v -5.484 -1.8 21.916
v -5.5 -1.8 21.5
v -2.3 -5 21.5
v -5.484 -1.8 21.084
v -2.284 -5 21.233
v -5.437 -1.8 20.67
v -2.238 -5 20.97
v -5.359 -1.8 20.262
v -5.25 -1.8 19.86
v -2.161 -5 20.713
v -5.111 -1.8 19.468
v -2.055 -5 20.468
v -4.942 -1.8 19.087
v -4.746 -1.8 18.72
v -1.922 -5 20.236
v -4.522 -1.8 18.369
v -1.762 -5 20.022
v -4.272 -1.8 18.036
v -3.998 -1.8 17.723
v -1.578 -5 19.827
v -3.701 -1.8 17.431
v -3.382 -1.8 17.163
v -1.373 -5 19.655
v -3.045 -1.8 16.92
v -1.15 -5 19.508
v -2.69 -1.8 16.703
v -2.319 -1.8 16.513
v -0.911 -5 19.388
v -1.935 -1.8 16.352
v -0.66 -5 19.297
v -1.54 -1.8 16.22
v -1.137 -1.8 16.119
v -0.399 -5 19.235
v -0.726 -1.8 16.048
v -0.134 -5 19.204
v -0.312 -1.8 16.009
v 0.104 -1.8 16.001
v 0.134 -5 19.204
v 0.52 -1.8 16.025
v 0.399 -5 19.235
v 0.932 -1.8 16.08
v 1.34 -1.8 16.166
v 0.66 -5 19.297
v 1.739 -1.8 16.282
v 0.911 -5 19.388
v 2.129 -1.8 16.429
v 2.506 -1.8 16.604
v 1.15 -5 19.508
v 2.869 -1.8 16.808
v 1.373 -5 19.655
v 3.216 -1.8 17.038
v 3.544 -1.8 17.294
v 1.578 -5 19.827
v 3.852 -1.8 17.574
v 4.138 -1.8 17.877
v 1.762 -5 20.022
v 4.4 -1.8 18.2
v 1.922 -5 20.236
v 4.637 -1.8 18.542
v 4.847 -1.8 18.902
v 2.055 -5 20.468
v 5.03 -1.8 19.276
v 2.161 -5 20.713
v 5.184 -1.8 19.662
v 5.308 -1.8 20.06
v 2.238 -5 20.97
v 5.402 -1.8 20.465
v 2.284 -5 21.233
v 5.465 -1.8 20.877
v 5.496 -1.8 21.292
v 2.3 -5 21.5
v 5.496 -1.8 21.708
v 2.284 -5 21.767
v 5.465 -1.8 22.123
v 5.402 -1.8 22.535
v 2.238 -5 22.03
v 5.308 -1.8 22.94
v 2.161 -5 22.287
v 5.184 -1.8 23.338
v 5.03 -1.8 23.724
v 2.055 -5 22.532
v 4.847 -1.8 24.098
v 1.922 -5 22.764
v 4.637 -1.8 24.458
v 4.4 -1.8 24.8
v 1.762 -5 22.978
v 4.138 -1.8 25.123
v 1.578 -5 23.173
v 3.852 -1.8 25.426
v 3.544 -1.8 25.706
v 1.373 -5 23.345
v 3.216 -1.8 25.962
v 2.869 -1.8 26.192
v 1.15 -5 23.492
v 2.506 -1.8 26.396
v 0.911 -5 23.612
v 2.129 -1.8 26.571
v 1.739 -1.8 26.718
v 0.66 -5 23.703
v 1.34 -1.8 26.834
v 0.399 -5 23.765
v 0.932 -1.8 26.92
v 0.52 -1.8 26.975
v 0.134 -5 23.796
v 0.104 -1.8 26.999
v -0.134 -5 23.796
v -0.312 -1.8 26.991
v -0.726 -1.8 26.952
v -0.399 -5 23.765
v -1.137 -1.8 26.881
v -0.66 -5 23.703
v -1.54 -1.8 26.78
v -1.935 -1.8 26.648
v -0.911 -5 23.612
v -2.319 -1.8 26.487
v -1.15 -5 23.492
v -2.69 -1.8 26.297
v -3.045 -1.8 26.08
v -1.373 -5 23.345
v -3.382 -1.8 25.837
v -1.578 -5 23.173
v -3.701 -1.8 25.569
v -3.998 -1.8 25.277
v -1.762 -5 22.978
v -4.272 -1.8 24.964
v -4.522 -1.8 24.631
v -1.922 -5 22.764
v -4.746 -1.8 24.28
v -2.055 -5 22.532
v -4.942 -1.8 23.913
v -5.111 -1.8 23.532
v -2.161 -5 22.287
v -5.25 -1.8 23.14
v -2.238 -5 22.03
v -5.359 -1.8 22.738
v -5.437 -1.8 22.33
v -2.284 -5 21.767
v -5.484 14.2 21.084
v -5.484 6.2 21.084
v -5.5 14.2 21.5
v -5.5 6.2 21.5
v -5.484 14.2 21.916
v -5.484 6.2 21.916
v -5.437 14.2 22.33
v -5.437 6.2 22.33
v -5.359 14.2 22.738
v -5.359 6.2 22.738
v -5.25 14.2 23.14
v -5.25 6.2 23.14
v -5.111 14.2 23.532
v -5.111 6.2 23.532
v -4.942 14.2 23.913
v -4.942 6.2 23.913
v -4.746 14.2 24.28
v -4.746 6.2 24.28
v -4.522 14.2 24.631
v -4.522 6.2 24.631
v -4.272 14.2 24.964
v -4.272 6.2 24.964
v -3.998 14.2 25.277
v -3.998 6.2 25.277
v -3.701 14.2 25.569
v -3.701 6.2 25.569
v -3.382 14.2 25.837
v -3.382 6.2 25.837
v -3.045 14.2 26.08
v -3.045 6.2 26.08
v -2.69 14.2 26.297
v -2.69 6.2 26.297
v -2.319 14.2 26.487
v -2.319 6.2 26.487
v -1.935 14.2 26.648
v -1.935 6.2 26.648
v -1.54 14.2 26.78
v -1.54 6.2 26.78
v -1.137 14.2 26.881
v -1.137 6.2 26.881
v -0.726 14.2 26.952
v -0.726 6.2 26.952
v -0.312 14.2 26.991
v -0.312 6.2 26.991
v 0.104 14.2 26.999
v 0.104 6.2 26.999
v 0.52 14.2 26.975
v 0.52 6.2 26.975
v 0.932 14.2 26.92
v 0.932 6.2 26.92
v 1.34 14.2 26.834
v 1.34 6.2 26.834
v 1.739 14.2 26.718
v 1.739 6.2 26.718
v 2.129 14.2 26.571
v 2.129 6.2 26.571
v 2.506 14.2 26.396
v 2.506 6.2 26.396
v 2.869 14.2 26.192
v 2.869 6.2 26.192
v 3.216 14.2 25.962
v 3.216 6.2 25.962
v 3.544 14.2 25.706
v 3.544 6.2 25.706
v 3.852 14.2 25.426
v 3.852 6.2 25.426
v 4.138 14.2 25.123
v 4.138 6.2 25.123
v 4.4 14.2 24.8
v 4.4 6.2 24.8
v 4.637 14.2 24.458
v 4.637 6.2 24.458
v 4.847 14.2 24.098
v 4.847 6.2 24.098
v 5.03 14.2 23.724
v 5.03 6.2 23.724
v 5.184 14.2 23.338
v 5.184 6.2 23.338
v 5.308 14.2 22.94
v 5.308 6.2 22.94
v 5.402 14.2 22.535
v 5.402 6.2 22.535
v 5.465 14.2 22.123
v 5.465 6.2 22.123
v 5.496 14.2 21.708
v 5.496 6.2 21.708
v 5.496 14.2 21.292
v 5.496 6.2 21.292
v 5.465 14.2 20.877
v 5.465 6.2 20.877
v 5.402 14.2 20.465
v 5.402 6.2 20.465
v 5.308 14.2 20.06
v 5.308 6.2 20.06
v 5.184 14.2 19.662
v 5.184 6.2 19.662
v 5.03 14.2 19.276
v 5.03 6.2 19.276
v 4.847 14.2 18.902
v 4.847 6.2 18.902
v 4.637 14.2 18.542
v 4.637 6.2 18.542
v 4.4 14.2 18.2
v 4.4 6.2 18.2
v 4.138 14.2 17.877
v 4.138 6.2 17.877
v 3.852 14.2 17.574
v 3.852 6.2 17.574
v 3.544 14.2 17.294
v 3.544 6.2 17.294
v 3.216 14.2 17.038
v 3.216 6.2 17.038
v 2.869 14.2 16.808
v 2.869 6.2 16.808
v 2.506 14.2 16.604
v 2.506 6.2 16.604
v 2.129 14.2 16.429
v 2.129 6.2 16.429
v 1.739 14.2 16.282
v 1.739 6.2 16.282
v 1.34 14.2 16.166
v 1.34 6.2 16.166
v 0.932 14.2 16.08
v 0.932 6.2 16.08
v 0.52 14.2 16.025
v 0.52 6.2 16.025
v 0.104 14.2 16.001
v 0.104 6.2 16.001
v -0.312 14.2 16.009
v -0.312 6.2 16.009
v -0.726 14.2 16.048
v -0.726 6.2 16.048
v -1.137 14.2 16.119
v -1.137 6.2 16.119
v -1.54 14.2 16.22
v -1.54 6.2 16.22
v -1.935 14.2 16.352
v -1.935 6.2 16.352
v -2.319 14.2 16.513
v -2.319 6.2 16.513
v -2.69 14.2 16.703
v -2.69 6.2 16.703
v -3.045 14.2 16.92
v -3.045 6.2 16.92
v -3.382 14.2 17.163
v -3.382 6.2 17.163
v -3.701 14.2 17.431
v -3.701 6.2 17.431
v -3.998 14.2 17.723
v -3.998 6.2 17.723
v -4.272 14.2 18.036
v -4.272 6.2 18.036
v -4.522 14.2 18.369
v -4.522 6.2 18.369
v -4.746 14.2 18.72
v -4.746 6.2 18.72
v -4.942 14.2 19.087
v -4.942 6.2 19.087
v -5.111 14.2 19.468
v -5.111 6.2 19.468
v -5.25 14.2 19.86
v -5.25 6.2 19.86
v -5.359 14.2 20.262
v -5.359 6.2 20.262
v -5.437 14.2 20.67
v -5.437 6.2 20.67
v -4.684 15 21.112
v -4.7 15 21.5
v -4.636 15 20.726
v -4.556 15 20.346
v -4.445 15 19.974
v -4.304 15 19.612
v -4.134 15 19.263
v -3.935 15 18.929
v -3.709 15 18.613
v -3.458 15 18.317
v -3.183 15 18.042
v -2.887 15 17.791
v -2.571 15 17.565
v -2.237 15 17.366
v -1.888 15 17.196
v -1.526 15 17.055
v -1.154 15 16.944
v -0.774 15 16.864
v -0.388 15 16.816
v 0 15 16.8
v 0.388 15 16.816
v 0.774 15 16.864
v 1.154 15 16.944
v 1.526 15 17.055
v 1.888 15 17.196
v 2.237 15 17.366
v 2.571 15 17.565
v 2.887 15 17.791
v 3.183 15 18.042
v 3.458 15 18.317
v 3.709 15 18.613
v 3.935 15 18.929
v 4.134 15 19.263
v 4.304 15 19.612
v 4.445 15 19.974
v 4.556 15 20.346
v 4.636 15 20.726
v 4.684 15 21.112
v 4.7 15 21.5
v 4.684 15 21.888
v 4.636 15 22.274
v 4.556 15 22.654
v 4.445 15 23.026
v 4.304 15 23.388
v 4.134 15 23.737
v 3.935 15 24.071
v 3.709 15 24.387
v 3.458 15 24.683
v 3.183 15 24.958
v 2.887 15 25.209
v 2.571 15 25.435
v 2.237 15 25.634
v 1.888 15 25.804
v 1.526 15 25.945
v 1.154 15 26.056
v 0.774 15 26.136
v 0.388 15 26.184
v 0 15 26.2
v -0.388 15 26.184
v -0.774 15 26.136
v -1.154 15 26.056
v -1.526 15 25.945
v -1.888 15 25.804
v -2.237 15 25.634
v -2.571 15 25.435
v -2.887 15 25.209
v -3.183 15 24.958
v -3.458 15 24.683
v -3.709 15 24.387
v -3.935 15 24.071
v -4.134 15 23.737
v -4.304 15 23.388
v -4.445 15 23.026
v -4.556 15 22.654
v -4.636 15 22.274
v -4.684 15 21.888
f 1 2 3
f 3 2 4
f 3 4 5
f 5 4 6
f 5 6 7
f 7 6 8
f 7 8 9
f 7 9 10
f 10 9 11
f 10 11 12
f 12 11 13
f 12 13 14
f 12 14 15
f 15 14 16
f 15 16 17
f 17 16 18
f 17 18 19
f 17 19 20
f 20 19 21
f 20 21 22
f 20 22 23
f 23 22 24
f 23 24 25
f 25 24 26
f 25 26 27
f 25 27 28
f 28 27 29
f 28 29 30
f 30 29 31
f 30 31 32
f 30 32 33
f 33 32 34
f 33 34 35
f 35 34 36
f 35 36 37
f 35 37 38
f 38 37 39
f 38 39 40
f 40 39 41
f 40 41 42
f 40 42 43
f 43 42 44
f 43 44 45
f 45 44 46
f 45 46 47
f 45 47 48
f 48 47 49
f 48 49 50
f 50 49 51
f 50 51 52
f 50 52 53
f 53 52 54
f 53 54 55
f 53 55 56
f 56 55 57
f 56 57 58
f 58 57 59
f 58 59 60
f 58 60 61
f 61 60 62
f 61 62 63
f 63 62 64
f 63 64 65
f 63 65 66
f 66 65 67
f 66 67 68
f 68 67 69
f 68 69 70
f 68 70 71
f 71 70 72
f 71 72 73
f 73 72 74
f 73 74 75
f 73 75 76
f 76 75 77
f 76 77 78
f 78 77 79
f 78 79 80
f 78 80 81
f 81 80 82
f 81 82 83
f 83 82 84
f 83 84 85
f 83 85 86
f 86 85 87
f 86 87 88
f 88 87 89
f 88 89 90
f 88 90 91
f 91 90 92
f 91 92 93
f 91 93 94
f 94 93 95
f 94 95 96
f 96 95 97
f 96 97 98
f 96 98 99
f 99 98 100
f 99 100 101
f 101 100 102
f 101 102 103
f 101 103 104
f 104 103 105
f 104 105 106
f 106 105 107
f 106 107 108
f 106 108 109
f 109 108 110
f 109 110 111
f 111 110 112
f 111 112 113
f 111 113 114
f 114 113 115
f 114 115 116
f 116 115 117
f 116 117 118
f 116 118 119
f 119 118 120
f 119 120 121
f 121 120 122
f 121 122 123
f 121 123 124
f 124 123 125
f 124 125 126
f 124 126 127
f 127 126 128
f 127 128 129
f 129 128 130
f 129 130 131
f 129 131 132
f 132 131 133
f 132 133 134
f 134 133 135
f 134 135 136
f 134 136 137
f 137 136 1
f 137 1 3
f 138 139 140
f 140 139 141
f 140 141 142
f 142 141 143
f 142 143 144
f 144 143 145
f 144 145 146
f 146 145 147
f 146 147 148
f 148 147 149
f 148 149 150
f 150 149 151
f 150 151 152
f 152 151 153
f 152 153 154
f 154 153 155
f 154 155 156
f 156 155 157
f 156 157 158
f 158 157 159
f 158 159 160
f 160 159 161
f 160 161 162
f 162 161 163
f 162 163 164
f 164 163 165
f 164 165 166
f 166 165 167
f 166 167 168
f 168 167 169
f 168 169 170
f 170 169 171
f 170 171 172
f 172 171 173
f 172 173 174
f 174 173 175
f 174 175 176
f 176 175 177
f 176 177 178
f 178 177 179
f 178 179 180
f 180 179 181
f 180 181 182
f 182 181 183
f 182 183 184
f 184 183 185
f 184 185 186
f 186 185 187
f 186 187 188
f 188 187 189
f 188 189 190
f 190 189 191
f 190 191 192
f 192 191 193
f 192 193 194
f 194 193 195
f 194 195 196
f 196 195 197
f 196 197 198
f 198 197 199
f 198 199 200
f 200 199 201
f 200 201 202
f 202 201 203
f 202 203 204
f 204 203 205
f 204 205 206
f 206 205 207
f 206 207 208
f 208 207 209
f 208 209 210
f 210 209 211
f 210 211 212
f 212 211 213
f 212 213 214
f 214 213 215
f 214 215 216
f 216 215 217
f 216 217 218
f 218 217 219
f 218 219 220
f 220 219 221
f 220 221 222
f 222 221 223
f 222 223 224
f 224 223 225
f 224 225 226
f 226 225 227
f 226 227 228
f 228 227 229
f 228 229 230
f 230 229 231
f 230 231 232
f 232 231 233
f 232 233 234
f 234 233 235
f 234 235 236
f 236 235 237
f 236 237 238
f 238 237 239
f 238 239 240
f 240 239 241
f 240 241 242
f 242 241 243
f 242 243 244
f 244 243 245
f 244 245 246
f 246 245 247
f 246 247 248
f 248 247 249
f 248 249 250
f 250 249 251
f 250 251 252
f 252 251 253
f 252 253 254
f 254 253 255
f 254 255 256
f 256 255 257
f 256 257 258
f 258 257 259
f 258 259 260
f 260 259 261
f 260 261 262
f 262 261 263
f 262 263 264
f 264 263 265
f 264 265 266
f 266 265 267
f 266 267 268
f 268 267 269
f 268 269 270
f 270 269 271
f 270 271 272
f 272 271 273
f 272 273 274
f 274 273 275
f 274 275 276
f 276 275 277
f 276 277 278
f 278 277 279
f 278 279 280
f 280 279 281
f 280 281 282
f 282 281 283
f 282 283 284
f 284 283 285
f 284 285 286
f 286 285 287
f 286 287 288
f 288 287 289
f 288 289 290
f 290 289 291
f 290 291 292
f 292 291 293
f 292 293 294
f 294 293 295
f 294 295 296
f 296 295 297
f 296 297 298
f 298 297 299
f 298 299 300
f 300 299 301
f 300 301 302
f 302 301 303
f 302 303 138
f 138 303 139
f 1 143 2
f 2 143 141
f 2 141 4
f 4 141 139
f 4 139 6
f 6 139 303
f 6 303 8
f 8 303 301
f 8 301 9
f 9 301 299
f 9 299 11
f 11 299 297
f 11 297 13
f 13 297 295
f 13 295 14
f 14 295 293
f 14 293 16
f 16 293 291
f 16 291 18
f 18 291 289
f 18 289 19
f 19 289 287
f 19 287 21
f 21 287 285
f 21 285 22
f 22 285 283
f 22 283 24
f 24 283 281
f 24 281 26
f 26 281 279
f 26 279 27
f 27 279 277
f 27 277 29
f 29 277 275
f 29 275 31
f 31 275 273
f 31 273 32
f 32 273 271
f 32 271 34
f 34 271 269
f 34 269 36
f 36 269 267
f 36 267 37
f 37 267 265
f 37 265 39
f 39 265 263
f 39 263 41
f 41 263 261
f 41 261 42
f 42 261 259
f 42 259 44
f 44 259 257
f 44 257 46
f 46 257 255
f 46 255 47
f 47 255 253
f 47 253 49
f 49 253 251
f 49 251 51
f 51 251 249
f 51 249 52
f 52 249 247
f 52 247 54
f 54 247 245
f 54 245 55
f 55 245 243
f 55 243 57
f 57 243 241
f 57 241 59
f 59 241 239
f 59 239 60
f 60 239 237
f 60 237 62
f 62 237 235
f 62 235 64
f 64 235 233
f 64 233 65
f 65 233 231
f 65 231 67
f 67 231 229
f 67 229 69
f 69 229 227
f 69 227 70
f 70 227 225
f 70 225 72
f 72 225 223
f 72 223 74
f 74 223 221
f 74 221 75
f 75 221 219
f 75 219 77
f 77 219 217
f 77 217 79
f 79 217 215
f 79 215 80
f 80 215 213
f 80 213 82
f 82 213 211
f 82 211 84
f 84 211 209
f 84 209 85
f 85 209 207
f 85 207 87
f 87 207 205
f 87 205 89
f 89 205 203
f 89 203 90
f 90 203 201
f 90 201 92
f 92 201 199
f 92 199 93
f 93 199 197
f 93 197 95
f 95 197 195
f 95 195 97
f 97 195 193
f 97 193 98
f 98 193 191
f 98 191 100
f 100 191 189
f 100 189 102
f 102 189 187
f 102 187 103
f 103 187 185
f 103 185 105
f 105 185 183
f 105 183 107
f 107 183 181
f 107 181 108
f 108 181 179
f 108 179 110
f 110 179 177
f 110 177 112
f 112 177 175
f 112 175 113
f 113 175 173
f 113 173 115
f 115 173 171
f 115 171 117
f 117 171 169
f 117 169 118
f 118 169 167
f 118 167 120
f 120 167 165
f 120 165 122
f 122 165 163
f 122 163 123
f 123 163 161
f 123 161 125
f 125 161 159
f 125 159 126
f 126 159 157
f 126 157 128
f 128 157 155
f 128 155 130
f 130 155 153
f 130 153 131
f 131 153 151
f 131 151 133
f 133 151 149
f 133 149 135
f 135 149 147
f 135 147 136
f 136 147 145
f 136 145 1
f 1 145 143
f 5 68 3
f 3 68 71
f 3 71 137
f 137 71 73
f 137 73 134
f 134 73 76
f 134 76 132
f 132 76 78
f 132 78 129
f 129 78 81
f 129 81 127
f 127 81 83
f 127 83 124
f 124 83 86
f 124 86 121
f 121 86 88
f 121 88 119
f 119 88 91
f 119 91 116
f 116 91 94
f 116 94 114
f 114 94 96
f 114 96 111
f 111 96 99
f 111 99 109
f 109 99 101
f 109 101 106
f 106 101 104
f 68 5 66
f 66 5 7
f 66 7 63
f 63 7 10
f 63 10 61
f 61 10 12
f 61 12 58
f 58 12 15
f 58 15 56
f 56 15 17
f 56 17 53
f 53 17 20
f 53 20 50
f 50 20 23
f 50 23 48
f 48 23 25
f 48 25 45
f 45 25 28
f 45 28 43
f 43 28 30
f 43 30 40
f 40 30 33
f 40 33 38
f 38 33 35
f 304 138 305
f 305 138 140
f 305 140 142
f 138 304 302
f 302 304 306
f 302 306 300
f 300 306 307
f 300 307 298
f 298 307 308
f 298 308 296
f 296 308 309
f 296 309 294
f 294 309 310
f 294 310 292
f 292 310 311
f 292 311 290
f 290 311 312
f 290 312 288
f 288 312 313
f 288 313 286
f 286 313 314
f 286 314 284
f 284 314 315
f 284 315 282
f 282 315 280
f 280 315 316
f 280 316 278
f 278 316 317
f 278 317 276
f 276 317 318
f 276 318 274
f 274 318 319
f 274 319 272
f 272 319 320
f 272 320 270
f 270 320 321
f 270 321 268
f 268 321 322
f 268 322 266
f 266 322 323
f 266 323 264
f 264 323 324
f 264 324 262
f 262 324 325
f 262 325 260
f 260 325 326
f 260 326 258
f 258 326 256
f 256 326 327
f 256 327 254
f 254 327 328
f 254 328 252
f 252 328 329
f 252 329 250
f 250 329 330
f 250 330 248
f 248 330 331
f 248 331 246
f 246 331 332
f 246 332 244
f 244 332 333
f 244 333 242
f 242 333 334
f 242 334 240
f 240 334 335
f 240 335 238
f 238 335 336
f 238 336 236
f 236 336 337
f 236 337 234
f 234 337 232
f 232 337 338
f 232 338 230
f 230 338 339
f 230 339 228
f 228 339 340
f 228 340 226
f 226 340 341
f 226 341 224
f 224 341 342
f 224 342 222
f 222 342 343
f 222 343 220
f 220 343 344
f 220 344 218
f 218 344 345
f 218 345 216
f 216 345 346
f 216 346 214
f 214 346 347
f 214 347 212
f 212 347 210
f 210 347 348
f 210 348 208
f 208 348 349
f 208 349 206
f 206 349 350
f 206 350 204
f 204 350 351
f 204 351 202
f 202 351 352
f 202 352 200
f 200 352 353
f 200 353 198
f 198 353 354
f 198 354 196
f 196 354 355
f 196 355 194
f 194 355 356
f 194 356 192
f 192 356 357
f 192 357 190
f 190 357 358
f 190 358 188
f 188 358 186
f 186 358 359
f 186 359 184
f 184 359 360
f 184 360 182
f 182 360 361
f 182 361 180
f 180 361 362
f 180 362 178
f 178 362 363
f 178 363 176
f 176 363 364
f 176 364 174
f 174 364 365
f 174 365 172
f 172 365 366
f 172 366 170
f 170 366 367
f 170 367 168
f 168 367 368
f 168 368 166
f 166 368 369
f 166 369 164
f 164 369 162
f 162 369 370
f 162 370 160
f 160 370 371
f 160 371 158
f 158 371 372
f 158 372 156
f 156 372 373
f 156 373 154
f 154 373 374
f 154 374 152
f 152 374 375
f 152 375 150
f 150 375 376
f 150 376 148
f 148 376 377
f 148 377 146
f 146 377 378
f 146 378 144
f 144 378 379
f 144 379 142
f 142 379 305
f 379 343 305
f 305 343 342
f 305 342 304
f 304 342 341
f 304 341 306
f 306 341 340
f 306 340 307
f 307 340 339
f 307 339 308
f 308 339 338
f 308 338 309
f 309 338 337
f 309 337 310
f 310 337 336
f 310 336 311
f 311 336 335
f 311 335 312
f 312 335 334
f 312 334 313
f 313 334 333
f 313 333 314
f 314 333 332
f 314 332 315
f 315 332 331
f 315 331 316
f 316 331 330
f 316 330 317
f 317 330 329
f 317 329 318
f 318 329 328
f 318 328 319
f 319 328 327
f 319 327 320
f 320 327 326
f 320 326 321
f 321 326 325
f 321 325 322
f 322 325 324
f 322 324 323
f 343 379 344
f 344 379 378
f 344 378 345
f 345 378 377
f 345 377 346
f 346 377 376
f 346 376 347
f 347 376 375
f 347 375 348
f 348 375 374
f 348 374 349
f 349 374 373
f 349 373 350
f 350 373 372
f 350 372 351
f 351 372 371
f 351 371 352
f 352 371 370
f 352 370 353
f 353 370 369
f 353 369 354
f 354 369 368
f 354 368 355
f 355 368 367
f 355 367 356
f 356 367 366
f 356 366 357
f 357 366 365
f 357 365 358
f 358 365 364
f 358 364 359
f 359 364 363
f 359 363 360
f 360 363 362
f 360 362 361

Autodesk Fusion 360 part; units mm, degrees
sketch "PinWay" plane through (0, 65, 0) normal (0, 1, 0) x (1, 0, 0)
  line L0 (0, 0) -> (0, -30) construction
  line L1 (0, -30) -> (4.125, -30)
  line L2 (4.125, -30) -> (4.125, -25.8571)
  line L3 (-4.125, -30) -> (-4.125, -25.8571)
  line L4 (0, -30) -> (-4.125, -30)
  arc A0 (4.125, -25.8571) -> (-4.125, -25.8571) centre (0, -21.5) ccw
  circle A1 centre (0, -21.5) radius 5.5
  circle A2 centre (0, -21.5) radius 3
  dimension "d1" = 0
  dimension "d2" = 0
  dimension "d3" = 0
  dimension "d4" = 0
  dimension "d5" = 0
  dimension "d6" = 0
extrude "Extrude1" add sketch "PinWay" against normal blind 70 contours A1 | A2
extrude "Extrude2" cut 1 faces at (0.5081, 65, 24.6232) along direction (0, -1, 0) blind 50
chamfer "Chamfer1" distance 0.8 angle 45 1 edges at (-5.1278, 15, 19.5111)
chamfer "Chamfer2" distance 3.2 angle 45 1 edges at (-5.1278, -5, 19.5111)
equation "d150 = BottomPinBlank"
equation "d152 = BottomPinBlank + BottomPinLength"
equation "BottomPinBlank = -70 mm"
equation "BottomPinLength = 20 mm"
equation "d1 = PinWayDiameter"
equation "d2 = PinWayDepth"
equation "d3 = BodyThickness"
equation "d4 = PinWayOpening / 2"
equation "d5 = Pin"
equation "d6 = SpoolPinCenter"
